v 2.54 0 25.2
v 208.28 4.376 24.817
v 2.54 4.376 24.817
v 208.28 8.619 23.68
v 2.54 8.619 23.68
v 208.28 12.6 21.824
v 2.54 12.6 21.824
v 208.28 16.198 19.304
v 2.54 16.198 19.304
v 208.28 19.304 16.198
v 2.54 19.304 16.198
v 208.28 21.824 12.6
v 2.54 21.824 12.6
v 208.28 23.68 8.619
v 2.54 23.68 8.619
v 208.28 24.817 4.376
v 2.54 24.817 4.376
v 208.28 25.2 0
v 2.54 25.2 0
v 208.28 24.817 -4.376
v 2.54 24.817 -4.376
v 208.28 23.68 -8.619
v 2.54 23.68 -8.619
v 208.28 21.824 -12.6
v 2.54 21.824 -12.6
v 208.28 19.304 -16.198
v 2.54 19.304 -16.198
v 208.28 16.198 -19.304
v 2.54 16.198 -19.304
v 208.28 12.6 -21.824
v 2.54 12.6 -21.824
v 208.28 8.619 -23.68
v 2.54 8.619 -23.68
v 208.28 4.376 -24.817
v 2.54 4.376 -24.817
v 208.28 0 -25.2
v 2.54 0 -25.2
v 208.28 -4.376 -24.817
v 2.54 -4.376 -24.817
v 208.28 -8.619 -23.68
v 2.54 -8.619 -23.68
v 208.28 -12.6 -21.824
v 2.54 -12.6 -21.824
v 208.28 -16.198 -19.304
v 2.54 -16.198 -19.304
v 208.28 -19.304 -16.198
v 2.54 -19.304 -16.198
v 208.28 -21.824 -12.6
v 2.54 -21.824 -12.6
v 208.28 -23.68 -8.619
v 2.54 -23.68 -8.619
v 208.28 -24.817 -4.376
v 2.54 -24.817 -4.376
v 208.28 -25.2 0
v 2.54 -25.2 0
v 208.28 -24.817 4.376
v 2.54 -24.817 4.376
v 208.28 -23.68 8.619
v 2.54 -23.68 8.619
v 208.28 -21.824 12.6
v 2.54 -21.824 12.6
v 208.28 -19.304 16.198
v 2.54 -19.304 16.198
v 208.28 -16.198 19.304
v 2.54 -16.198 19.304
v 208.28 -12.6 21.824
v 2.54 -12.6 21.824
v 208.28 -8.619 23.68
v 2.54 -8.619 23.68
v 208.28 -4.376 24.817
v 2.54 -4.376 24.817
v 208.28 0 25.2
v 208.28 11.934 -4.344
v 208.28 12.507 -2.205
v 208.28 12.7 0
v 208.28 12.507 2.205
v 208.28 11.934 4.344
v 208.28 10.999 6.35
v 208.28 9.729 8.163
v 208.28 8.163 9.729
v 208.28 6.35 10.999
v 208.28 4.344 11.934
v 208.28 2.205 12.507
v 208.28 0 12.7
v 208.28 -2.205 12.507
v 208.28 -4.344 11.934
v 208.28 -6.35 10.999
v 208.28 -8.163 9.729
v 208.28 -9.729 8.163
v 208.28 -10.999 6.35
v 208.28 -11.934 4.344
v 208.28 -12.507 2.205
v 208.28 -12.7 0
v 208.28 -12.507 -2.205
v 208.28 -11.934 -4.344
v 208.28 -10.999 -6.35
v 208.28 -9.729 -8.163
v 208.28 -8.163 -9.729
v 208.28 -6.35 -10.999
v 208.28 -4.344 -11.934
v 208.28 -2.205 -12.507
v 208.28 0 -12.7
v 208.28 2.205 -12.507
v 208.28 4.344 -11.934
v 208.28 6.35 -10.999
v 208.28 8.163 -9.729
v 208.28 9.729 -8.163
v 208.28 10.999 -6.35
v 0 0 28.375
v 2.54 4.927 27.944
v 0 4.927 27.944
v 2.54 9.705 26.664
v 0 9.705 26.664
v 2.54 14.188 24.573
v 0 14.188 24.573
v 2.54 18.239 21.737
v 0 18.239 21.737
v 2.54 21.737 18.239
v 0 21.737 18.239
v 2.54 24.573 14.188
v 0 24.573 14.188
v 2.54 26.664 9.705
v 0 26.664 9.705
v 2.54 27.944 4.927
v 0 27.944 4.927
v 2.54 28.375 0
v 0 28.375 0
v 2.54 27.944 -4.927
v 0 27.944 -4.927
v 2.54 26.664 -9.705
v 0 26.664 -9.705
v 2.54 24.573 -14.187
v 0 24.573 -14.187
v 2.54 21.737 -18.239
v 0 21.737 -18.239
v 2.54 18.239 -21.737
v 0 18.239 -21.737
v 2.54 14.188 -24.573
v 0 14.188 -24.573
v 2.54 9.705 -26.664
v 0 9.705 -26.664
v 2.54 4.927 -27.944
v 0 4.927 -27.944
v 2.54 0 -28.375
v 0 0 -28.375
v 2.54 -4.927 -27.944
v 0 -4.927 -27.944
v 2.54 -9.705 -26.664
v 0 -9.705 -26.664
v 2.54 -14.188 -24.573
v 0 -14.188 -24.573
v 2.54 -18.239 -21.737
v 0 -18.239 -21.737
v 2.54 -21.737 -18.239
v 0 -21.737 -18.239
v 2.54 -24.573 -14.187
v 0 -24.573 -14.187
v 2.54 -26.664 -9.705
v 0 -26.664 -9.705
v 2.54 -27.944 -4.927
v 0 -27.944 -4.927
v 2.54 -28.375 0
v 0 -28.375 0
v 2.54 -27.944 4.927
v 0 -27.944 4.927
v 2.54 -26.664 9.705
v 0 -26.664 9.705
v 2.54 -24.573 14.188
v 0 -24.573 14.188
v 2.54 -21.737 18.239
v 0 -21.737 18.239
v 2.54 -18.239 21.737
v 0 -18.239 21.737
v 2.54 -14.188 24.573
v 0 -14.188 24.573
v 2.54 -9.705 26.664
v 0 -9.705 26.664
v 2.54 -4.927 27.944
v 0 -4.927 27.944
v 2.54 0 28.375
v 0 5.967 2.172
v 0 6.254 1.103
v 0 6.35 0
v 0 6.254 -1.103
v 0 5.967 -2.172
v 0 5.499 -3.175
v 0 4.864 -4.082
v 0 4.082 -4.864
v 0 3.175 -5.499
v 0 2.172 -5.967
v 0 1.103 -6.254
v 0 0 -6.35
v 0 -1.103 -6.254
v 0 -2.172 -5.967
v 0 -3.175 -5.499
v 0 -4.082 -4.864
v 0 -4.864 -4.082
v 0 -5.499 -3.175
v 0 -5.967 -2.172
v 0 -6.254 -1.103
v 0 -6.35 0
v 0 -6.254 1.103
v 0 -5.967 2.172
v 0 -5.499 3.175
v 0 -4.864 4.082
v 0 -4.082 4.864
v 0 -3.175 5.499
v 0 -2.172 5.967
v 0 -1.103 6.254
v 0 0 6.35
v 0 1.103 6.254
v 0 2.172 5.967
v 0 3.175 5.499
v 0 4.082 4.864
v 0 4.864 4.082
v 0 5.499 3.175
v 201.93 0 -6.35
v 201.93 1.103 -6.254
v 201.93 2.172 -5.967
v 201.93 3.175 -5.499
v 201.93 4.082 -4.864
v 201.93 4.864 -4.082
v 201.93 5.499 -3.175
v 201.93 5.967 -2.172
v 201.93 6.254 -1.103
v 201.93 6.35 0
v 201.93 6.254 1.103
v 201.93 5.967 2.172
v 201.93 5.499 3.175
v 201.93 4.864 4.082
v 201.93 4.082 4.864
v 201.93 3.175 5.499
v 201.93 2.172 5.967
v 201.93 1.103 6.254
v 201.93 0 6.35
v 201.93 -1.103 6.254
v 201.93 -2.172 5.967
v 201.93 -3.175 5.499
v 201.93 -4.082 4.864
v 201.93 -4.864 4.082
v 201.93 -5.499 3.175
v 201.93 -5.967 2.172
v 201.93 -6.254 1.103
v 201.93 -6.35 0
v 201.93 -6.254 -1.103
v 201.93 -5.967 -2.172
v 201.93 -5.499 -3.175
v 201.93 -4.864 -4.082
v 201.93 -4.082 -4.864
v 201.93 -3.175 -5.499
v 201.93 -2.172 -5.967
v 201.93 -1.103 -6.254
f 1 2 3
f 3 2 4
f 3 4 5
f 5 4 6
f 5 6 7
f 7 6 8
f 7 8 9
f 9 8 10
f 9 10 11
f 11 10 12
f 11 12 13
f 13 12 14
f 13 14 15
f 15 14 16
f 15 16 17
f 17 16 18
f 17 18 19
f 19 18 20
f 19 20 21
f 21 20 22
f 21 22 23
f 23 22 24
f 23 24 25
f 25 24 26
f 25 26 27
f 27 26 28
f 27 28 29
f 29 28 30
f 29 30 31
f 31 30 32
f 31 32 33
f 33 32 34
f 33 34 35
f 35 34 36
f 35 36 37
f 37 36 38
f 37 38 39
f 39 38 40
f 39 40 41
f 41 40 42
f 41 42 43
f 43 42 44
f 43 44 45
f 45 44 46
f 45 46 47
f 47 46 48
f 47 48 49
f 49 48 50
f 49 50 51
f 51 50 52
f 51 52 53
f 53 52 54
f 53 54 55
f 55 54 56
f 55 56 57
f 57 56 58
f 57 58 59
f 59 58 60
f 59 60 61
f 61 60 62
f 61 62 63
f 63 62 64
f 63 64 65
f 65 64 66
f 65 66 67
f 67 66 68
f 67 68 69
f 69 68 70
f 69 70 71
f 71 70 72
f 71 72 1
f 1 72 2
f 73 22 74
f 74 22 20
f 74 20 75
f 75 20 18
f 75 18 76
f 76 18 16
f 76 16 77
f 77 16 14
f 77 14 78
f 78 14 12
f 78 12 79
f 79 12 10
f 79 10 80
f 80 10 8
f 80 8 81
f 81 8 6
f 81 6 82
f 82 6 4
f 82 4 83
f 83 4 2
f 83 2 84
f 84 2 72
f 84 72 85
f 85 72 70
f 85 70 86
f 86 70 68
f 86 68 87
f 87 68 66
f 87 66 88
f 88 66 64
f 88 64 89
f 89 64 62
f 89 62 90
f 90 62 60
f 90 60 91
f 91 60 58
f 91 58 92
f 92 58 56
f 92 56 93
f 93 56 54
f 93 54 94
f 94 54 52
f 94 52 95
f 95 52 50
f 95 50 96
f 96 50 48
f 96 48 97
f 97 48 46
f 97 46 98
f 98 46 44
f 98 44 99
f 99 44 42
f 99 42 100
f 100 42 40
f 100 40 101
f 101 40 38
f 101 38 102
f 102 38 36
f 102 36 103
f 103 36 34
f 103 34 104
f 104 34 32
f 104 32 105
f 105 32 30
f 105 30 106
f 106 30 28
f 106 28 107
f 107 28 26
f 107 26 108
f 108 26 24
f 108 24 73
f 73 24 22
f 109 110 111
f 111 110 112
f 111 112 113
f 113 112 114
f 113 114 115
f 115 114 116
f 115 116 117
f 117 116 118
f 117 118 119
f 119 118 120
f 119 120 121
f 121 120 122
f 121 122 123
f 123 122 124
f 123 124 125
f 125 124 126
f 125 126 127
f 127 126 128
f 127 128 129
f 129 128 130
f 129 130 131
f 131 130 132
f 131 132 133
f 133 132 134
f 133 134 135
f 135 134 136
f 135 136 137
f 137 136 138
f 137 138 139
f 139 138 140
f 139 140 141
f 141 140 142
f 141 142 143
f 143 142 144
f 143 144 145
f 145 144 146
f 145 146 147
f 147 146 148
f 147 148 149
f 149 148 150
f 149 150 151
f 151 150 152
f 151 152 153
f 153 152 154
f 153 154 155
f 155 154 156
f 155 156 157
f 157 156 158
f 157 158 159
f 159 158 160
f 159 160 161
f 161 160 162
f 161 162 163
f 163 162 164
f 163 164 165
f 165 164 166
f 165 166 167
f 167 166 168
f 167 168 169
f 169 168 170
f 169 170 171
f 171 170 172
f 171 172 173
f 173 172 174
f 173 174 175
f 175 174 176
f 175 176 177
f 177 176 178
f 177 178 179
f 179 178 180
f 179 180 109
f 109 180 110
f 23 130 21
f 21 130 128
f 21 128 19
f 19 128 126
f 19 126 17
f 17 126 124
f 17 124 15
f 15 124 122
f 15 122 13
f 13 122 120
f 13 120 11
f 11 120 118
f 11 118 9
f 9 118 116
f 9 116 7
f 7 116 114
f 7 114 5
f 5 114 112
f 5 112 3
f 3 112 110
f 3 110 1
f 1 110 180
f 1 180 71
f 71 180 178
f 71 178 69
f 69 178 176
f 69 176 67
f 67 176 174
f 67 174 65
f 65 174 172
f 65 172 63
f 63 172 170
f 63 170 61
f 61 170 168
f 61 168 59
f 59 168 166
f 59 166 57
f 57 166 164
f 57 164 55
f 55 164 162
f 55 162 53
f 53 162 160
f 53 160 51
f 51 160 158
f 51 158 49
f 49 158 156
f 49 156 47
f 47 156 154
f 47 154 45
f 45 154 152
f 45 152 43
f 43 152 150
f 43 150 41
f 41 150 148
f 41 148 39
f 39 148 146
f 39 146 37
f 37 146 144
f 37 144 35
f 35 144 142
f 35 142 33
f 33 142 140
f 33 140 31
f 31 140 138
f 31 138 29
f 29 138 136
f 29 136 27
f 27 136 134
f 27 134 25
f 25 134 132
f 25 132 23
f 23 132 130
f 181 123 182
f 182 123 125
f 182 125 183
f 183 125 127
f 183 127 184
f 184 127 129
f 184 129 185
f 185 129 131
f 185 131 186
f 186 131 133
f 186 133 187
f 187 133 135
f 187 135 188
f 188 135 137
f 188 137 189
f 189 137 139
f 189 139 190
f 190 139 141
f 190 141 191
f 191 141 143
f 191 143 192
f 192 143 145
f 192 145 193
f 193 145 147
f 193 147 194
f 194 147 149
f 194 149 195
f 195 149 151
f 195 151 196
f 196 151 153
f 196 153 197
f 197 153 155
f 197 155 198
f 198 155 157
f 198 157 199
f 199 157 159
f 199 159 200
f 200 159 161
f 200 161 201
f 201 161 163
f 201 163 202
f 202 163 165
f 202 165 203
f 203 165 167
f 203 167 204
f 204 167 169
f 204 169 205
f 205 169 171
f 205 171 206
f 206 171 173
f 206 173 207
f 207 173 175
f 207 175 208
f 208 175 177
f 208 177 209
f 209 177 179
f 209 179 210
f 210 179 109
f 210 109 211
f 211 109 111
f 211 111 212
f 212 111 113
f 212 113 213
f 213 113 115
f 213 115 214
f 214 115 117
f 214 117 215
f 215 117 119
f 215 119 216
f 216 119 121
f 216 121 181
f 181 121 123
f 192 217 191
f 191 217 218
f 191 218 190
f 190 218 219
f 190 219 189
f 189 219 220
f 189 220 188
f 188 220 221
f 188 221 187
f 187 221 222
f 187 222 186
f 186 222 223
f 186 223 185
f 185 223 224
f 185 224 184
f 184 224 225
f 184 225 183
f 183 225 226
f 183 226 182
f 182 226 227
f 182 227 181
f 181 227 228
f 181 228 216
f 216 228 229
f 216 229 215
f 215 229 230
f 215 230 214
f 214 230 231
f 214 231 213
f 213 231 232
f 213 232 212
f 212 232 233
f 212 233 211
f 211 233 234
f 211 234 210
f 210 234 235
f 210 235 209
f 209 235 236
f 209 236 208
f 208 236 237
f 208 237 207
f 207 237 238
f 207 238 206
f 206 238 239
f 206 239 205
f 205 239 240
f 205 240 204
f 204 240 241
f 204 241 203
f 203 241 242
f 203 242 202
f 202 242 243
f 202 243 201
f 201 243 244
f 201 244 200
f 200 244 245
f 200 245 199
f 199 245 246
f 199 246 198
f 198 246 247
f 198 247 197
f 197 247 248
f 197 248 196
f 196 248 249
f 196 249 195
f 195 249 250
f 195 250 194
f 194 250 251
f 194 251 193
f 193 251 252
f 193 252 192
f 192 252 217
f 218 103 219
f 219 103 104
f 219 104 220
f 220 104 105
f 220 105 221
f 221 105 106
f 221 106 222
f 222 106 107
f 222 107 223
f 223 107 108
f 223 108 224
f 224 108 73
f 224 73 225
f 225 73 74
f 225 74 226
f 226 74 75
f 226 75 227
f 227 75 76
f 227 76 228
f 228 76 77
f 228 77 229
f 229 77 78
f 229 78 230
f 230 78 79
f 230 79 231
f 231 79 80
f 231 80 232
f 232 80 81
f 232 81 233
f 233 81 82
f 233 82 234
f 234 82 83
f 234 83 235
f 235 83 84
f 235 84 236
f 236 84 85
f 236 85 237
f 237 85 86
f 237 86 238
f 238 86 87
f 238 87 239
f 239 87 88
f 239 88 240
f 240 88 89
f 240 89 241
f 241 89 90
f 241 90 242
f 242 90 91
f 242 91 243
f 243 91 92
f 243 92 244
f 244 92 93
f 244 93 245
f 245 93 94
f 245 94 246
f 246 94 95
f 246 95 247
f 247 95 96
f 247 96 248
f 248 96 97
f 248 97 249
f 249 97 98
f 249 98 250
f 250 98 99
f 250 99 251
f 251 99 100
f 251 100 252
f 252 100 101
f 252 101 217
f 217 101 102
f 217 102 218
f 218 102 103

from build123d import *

# Parameters (mm, degrees)
SKETCH1_R           = 25.2
BOSS_EXTRUDE1_DEPTH = 208.28
SKETCH2_R           = 28.375
BOSS_EXTRUDE2_DEPTH = 2.54
SKETCH4_R           = 6.35
CUT_EXTRUDE1_DEPTH  = 213.110442105
CHAMFER1_SIZE       = 6.35


with BuildPart() as part:
    # Sketch1 → Boss-Extrude1 (new body)
    with BuildSketch(Plane(origin=(0, 0, 0), x_dir=(0, 0, -1), z_dir=(1, 0, 0))):
        Circle(SKETCH1_R)
    extrude(amount=BOSS_EXTRUDE1_DEPTH)

    # Sketch2 → Boss-Extrude2 (add)
    with BuildSketch(Plane.ZY):
        Circle(SKETCH2_R)
    extrude(amount=-BOSS_EXTRUDE2_DEPTH)

    # Sketch4 → Cut-Extrude1 (cut, through all)
    with BuildSketch(Plane(origin=(208.28, 0, 0), x_dir=(0, 0, -1), z_dir=(1, 0, 0))):
        Circle(SKETCH4_R)
    extrude(amount=-CUT_EXTRUDE1_DEPTH, mode=Mode.SUBTRACT)

    # Chamfer1
    chamfer1_edges = [part.edges().sort_by_distance(p)[0] for p in [
        (208.28, 0, 6.35),
    ]]
    chamfer(chamfer1_edges, length=CHAMFER1_SIZE)


solid = part.part
